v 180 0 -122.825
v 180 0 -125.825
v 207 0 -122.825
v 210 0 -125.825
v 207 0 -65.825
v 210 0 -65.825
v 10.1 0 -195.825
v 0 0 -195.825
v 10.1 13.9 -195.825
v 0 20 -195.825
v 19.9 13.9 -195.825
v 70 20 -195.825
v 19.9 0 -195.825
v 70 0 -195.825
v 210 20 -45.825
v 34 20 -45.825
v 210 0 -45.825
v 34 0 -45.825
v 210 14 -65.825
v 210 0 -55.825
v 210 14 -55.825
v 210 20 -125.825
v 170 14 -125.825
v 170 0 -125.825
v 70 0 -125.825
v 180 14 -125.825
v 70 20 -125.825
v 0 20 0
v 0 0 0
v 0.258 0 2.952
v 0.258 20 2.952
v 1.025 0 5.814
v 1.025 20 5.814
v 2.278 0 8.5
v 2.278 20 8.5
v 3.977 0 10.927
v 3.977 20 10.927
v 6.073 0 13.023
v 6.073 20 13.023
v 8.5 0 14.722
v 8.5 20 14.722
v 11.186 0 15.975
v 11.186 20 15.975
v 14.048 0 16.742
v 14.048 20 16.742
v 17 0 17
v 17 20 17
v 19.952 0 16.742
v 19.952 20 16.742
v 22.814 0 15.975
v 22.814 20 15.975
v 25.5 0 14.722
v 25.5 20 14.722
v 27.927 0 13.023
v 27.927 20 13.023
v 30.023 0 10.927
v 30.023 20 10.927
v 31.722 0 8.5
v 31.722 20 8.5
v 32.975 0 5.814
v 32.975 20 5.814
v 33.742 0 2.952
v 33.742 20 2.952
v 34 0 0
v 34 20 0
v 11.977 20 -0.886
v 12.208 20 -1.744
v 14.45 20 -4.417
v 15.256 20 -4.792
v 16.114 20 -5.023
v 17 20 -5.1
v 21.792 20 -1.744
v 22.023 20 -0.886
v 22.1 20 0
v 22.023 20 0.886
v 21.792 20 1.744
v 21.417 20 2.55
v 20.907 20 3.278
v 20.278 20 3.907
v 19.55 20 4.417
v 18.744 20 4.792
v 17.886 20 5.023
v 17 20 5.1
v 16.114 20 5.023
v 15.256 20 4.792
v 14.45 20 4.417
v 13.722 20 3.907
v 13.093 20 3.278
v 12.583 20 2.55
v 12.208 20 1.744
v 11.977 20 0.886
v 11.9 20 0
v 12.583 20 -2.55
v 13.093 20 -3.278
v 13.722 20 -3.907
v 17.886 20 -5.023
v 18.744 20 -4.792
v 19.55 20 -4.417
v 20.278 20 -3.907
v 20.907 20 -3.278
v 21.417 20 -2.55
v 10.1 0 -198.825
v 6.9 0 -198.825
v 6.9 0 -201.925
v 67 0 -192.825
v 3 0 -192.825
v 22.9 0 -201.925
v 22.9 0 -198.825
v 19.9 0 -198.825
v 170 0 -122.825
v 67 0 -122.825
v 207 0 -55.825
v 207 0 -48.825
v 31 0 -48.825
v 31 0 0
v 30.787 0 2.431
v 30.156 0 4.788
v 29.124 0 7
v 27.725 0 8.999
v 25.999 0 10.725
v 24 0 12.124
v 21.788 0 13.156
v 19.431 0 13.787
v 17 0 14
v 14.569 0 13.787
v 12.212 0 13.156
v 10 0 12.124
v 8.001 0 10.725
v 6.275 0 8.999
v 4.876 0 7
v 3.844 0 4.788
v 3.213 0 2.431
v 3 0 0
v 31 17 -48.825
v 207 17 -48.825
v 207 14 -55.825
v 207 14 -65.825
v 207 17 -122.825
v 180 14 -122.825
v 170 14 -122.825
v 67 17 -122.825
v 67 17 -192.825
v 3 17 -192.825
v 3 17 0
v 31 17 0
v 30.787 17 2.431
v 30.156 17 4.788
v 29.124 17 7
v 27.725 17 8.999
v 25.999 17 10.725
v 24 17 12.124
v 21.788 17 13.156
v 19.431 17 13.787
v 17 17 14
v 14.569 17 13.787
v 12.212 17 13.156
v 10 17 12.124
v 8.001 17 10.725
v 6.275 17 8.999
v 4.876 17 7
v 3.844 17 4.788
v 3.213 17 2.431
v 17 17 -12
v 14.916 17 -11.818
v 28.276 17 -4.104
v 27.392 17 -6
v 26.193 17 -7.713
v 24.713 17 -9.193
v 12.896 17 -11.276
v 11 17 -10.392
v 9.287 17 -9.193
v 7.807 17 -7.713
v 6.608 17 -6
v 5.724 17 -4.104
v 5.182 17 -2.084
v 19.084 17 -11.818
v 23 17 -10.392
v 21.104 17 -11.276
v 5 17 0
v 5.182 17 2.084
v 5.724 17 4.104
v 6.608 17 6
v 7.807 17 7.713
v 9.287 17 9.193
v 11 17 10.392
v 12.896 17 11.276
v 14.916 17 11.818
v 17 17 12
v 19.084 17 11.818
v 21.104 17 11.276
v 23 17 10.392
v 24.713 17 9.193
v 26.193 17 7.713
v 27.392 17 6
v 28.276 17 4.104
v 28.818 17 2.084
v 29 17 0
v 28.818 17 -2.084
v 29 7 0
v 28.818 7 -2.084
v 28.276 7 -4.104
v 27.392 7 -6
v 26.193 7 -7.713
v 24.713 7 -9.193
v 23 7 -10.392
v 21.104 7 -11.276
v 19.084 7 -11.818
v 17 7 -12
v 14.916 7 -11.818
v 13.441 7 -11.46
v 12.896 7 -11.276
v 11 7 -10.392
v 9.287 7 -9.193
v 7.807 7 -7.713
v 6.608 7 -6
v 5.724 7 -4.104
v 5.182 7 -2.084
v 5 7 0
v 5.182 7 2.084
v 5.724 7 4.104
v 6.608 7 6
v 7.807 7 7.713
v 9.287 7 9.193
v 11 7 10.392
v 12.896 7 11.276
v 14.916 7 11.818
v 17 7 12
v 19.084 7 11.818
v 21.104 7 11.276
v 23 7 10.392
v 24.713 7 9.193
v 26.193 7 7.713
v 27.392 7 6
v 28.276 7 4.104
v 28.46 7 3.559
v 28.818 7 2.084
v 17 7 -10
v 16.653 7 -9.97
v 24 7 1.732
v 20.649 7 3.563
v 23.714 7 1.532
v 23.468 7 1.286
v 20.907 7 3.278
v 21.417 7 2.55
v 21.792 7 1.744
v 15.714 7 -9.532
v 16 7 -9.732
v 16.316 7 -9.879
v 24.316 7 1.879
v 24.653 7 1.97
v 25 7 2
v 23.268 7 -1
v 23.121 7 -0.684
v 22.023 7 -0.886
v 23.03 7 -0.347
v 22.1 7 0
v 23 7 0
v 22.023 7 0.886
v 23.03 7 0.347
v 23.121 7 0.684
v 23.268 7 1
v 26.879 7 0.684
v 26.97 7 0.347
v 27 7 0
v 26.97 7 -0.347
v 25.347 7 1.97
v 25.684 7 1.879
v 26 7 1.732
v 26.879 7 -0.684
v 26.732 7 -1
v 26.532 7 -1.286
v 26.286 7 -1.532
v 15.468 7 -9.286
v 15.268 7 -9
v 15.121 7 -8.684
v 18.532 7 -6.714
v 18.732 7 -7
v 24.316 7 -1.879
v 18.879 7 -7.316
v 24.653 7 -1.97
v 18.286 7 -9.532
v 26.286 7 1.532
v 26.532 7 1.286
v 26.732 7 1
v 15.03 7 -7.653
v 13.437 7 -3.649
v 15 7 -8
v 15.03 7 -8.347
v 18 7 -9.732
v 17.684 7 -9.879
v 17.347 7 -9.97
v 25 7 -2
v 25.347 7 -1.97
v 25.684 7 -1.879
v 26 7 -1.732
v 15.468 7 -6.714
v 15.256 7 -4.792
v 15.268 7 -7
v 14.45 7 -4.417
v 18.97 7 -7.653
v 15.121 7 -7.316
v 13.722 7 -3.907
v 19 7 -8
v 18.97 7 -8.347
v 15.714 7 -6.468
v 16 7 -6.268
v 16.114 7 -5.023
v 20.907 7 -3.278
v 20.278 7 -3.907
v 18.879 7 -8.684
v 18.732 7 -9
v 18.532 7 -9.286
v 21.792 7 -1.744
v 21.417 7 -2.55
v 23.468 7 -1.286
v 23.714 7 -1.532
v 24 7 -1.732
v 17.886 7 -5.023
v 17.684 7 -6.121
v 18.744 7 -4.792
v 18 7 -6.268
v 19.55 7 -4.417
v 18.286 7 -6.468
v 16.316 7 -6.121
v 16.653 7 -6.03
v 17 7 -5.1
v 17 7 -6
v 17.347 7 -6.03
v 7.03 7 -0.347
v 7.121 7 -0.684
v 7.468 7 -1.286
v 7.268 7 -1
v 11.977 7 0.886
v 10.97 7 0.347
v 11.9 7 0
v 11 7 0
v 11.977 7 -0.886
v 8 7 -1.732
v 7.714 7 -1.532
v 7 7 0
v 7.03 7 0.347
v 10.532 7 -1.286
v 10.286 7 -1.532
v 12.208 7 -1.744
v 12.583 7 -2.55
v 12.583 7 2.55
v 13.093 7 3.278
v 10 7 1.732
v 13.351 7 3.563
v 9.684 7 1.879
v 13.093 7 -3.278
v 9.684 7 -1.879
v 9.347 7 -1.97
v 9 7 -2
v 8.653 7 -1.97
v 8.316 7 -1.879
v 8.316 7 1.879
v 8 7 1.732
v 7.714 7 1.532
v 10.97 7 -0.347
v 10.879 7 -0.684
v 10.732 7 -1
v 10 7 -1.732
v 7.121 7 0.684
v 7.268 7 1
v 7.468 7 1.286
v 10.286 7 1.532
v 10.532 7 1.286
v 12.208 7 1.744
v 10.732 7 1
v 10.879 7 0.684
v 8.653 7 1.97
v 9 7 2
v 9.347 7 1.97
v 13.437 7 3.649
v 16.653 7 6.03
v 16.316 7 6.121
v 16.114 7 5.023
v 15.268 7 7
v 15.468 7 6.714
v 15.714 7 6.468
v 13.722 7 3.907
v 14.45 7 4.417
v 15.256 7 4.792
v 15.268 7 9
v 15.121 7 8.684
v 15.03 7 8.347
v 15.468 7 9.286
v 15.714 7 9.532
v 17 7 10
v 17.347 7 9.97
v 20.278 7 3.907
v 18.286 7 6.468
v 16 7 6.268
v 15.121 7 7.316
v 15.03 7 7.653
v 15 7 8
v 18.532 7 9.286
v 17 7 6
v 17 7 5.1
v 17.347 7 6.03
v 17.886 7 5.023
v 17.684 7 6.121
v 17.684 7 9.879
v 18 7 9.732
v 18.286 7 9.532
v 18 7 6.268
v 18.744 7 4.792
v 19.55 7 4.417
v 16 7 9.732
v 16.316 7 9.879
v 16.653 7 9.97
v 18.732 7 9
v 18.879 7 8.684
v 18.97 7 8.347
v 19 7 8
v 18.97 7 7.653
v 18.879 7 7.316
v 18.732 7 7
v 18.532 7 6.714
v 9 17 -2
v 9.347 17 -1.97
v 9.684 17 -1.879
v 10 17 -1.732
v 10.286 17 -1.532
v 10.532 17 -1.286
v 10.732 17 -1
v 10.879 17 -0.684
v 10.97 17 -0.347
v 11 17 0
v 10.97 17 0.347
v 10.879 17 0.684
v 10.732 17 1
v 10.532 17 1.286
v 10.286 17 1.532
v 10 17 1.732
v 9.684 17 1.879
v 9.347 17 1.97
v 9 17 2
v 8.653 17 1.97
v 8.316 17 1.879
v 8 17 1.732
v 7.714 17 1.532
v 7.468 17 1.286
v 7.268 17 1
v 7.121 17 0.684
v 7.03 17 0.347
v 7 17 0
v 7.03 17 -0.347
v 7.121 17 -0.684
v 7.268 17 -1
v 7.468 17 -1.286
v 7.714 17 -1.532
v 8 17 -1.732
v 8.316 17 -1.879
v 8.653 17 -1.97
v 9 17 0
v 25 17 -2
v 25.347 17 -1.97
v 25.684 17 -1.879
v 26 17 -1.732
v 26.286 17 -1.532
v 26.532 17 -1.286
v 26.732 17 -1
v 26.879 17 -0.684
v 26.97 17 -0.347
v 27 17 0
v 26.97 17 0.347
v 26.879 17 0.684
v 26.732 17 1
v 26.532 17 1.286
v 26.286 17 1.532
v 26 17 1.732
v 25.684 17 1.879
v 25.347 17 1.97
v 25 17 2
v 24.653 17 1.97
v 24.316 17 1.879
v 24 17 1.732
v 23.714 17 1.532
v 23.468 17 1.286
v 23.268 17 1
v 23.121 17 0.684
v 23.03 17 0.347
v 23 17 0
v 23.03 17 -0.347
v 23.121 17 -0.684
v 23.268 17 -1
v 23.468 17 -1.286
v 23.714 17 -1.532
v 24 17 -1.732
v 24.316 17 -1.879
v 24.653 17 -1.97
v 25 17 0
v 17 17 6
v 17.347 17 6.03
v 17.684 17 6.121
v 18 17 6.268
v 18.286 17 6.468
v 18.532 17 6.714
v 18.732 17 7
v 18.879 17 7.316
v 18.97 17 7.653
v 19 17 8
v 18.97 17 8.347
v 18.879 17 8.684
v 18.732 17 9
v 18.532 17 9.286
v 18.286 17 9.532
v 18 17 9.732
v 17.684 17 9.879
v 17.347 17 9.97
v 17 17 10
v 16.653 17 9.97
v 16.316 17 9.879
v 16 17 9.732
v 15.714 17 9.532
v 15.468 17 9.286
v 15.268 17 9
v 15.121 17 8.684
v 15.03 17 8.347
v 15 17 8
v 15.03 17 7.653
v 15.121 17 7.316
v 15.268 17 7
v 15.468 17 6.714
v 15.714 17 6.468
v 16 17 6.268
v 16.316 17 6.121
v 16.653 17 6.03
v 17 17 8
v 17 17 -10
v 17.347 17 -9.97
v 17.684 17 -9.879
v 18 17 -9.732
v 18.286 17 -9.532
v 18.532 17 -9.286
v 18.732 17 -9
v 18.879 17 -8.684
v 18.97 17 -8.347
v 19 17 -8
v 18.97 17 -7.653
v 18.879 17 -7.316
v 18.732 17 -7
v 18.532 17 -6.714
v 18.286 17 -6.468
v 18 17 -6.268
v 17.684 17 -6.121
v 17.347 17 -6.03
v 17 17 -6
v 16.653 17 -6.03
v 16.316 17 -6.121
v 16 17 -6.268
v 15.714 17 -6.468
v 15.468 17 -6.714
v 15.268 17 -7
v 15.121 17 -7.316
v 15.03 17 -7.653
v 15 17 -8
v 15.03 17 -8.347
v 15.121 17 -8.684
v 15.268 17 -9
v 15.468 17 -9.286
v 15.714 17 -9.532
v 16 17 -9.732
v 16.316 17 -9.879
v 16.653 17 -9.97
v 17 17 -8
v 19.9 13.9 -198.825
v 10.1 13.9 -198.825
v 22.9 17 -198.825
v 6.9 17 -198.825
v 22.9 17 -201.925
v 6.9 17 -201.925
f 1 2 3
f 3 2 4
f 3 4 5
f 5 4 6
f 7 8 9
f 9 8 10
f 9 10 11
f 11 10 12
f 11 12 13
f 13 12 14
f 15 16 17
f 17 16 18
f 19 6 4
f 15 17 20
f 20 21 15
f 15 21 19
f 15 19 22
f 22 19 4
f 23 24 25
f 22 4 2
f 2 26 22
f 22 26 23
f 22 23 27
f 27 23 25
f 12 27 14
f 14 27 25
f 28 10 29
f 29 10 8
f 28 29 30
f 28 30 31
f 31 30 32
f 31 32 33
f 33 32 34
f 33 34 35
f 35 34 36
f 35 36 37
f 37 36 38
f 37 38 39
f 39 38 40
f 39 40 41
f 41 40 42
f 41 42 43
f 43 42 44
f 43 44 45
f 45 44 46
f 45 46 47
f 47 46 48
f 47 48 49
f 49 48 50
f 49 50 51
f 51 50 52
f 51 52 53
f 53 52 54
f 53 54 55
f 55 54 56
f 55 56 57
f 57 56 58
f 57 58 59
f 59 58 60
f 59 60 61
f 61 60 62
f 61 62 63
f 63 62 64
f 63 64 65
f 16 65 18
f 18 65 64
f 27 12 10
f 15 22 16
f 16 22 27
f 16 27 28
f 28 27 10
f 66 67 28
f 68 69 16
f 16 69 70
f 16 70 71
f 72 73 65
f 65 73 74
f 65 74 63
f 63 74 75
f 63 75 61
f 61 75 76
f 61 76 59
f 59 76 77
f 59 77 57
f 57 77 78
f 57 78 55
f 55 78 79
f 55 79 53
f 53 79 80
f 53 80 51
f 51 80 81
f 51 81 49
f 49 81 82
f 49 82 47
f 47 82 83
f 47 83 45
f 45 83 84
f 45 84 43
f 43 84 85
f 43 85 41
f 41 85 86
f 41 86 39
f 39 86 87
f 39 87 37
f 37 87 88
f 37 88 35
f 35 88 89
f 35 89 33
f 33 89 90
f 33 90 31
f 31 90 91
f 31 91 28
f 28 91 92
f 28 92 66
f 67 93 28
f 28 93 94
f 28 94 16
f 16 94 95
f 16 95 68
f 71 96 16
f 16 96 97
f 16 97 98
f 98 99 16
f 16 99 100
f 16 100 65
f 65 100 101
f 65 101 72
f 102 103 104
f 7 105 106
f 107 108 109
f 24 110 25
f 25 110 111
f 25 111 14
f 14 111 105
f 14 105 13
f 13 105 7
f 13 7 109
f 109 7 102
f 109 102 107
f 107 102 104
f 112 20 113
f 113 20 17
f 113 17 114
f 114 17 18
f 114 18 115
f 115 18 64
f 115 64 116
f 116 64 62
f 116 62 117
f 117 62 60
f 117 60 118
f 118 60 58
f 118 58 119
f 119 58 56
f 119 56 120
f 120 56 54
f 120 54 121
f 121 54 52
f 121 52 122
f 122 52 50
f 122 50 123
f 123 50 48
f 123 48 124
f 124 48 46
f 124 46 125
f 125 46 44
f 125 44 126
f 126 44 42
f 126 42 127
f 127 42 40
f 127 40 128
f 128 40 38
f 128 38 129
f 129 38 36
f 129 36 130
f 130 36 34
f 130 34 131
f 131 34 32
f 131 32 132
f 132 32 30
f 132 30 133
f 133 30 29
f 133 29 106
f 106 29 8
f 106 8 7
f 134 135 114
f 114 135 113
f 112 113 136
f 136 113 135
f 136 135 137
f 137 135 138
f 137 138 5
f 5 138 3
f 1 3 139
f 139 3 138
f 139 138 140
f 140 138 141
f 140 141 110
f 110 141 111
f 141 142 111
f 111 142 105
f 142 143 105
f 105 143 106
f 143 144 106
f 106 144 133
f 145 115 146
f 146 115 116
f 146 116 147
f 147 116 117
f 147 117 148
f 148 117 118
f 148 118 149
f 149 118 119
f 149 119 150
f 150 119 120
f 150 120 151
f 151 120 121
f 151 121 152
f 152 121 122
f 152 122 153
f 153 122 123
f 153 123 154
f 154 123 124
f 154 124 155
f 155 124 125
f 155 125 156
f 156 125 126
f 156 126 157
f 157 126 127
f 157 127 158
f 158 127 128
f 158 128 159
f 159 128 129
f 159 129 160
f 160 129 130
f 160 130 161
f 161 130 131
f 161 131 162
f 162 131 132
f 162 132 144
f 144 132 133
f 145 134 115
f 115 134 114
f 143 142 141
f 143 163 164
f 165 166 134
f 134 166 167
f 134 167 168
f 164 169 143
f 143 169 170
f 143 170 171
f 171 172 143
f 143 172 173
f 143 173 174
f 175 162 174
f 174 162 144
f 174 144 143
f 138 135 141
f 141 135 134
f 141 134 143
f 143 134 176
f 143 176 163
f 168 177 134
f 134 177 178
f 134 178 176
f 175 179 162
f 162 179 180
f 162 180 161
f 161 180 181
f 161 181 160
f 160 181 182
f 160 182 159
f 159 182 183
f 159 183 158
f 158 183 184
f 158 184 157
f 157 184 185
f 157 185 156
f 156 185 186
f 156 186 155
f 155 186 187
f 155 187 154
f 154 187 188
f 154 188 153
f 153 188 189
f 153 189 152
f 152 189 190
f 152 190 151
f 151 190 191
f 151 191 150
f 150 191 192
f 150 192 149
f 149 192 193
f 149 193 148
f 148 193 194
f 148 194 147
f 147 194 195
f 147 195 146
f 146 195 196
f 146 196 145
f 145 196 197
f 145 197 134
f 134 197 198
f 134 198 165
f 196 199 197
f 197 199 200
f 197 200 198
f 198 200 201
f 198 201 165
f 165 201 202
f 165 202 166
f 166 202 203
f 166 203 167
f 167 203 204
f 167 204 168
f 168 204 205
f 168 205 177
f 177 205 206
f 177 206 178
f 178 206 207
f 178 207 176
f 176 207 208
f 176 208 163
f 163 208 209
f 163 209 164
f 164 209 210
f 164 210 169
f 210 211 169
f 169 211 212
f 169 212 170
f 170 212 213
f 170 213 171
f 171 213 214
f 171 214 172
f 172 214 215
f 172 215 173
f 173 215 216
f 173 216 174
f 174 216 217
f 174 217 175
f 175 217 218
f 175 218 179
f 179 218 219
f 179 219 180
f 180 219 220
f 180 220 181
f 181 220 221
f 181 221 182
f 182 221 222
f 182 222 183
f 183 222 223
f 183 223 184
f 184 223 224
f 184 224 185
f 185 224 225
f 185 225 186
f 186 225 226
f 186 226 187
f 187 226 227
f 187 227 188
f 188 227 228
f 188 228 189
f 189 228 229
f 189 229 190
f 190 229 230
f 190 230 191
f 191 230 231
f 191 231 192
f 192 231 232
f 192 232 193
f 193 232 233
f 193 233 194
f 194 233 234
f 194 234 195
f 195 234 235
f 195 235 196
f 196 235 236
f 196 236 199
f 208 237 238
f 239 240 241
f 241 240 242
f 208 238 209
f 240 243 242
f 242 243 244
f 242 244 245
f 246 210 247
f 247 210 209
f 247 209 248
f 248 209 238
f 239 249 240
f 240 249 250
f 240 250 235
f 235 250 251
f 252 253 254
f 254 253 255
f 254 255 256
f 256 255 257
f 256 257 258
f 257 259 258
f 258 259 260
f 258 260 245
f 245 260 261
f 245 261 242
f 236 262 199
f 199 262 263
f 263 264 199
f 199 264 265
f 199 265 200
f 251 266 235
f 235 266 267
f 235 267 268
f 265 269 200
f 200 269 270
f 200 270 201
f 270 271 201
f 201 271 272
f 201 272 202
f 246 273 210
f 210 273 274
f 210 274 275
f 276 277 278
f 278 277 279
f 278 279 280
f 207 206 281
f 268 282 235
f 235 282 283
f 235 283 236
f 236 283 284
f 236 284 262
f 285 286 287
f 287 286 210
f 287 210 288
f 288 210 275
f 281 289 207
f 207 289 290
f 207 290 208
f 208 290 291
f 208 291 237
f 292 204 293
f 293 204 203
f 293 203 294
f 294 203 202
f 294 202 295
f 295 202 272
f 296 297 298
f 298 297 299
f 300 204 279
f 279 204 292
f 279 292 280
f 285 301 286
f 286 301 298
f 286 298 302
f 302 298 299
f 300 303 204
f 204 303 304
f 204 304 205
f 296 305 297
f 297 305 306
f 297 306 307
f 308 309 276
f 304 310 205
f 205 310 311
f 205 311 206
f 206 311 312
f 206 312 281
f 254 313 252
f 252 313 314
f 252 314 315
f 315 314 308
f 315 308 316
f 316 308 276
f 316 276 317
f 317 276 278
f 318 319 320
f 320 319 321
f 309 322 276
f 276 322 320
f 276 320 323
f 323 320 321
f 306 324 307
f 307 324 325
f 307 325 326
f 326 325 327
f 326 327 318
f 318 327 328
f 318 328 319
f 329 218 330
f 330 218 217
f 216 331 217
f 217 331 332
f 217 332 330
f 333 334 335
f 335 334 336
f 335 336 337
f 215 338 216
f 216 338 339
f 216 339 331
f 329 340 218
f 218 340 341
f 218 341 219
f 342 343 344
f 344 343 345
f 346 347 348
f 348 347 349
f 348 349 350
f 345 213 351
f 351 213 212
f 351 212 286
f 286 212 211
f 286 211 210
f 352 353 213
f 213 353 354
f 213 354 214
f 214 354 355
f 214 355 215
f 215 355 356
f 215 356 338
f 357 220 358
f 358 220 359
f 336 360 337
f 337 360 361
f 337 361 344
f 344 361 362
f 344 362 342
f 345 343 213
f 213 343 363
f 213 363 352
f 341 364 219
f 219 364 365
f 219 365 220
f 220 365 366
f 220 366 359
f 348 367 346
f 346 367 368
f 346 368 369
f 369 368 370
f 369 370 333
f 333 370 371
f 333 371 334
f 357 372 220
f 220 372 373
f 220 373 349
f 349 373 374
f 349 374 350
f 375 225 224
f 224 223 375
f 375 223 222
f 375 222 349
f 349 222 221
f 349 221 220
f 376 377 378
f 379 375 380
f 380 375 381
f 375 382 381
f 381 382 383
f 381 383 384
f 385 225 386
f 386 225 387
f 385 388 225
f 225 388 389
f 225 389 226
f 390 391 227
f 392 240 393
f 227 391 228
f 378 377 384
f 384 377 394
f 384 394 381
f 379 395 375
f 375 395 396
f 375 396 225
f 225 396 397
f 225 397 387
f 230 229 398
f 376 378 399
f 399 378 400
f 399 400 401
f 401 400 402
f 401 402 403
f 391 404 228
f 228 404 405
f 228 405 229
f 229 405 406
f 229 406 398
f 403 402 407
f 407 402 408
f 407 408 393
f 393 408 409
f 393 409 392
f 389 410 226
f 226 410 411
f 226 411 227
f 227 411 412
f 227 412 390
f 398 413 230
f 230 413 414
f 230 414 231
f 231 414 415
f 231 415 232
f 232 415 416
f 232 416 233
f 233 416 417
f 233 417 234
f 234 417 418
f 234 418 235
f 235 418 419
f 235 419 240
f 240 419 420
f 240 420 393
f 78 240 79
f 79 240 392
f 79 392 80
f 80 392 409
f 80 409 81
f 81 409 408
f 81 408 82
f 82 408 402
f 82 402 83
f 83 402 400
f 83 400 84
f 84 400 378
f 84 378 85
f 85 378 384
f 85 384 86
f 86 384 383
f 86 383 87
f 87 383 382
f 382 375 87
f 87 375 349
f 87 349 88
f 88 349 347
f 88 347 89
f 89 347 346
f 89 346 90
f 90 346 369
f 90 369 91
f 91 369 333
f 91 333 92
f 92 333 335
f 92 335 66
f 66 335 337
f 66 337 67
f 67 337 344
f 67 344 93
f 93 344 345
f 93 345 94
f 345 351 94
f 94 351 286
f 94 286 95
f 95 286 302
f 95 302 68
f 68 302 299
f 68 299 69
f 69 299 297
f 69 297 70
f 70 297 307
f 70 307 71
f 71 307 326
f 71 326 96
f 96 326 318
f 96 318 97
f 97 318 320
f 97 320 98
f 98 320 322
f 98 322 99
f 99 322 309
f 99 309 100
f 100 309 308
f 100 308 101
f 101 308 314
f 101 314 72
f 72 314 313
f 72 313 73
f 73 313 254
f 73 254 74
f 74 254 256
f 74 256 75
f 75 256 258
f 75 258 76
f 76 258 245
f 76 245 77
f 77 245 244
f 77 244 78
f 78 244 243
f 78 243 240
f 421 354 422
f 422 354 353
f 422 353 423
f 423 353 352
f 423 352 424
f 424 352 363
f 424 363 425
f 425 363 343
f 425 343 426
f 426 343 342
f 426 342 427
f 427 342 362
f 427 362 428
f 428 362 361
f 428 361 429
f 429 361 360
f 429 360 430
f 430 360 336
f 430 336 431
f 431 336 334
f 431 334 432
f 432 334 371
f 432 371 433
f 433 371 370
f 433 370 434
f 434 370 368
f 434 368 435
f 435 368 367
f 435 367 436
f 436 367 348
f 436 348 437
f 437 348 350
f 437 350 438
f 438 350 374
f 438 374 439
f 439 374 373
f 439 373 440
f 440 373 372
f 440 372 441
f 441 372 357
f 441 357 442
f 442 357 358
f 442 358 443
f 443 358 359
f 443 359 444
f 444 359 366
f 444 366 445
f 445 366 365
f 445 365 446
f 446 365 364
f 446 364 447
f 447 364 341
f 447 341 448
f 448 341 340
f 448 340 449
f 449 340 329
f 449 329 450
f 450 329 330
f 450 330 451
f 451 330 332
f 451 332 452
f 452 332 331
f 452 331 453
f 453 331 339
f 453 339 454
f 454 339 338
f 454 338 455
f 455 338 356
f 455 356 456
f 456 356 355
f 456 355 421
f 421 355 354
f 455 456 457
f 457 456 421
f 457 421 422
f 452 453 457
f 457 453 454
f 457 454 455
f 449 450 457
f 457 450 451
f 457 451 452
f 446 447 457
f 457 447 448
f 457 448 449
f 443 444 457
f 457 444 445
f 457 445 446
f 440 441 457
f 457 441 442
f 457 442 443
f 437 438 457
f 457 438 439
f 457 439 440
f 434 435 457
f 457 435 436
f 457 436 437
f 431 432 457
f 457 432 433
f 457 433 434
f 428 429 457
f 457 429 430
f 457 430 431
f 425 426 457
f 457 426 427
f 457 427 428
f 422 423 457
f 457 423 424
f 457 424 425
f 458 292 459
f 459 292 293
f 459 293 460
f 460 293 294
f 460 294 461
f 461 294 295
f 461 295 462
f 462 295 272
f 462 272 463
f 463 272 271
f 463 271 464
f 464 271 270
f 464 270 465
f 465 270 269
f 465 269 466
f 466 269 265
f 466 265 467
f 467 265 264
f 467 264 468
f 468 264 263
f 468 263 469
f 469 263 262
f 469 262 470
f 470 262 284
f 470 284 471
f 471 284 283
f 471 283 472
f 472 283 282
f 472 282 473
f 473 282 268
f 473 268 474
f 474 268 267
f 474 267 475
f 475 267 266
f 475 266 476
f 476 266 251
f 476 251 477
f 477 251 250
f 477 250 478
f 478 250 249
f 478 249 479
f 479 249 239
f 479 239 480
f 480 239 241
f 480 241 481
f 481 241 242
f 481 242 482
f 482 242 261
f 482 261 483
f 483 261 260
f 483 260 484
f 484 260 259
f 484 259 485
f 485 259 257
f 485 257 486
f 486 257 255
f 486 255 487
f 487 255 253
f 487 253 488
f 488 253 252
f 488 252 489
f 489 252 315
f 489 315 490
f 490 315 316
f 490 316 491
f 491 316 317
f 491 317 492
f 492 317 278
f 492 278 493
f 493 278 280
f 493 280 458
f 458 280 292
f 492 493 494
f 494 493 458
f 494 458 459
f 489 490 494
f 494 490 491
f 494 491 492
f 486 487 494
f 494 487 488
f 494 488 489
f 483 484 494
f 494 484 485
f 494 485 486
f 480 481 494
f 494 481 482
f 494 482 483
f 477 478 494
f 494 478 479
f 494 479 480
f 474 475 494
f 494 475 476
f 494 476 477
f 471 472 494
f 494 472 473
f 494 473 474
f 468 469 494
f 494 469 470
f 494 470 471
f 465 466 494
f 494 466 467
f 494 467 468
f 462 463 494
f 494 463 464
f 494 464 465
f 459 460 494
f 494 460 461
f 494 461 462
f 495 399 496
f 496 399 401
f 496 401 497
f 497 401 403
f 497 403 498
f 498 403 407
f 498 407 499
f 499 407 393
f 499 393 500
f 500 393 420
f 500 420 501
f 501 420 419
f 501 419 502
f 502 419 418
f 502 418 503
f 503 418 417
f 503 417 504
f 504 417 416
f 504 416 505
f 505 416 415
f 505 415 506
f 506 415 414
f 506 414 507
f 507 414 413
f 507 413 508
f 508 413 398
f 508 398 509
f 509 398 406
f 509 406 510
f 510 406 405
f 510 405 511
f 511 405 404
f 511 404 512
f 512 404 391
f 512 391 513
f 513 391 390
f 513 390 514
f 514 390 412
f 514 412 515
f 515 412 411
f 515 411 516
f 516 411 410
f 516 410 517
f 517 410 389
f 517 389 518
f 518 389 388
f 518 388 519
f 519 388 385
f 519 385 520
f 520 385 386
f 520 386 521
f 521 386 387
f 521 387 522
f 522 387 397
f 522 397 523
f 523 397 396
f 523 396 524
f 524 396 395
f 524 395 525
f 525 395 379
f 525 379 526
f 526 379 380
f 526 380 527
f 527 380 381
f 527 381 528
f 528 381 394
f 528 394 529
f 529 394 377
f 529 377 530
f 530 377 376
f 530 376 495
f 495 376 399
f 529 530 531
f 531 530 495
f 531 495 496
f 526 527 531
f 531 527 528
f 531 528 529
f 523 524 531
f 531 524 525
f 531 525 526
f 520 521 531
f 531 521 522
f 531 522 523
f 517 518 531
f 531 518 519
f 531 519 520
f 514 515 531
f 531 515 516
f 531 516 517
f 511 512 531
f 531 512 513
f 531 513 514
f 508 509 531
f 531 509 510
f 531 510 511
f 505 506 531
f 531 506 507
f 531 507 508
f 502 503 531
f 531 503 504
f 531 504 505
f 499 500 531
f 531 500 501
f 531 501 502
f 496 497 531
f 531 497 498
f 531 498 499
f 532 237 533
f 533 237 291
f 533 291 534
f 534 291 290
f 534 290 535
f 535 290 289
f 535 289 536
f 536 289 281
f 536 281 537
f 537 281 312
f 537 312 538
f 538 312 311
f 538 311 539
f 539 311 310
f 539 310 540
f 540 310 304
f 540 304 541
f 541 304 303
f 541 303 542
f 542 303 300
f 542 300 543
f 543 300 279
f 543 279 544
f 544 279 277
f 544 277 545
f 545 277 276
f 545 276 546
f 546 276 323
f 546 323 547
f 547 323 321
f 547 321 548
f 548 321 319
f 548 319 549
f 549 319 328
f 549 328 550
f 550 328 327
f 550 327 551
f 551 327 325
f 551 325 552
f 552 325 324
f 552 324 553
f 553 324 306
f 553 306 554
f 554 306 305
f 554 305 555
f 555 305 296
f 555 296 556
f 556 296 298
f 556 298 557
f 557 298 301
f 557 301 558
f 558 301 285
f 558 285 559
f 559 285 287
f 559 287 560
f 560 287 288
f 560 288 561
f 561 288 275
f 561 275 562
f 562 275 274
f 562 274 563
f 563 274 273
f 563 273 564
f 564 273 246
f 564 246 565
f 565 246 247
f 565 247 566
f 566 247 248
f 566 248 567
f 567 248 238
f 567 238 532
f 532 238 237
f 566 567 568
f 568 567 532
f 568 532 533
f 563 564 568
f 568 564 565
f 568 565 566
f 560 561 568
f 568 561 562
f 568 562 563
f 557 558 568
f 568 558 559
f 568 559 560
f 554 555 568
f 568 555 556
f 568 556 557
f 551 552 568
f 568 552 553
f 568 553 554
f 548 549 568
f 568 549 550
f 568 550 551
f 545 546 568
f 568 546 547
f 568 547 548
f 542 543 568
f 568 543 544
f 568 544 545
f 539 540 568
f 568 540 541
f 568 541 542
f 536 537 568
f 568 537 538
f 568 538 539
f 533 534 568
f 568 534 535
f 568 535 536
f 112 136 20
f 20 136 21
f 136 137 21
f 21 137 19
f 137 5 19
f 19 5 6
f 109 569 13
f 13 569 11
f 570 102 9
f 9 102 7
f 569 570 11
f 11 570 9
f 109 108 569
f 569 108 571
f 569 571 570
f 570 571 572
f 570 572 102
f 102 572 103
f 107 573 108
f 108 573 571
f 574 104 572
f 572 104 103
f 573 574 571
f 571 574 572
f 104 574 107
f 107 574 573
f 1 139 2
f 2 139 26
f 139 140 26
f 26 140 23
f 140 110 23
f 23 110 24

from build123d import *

# Parameters (mm, degrees)
CORNERBOSS_EXTRUDE1_DEPTH               = 20
SHELL4_T                                = -3
PADSKETCH2_R                            = 12
PADBOSS_EXTRUDE2_DEPTH                  = 10
STEPPERSHAFTHOLECUTSKETCH3_R            = 5.1
STEPPERSHAFTHOLECUT_EXTRUDE1_DEPTH      = 288.430740571
THREADEDNUTMOUNTHOLESSKETCH4_R          = 2
THREADEDNUTMOUNTHOLESCUT_EXTRUDE2_DEPTH = 10
BRPEGHOLESKETCH1_W                      = 10
BRPEGHOLESKETCH1_H                      = 14
BRPEGHOLECUT_EXTRUDE1_DEPTH             = 3
TOPPEGSKETCH2_W                         = 9.8
TOPPEGSKETCH2_H                         = 13.9
TOPPEGBOSS_EXTRUDE1_DEPTH               = 3
TOPPEGCAPSKETCH3_W                      = 16
TOPPEGCAPSKETCH3_H                      = 17
TOPPEGCAPBOSS_EXTRUDE2_DEPTH            = 3.1
CENTERPEGHOLECUTSKETCH1_W               = 10
CENTERPEGHOLECUTSKETCH1_H               = 14
CENTERPEGHOLECUT_EXTRUDE1_DEPTH         = 3


with BuildPart() as part:
    # CornerrSketch1 → CornerBoss-Extrude1 (new body)
    with BuildSketch(Plane(origin=(0, 0, 0), x_dir=(1, 0, 0), z_dir=(0, 1, 0))):
        with BuildLine():
            Line((0, 195.825), (70, 195.825))
            Line((70, 195.825), (70, 125.825))
            Line((70, 125.825), (210, 125.825))
            Line((210, 125.825), (210, 45.825))
            Line((210, 45.825), (34, 45.825))
            Line((34, 45.825), (34, 0))
            ThreePointArc((34, 0), (17, -17), (0, 0))
            Line((0, 0), (0, 195.825))
        make_face()
    extrude(amount=CORNERBOSS_EXTRUDE1_DEPTH)

    # Shell4
    shell4_openings = [part.faces().sort_by_distance(p)[0] for p in [
        (83.067785517, 0, -95.408443826),
    ]]
    offset(amount=SHELL4_T, openings=shell4_openings, kind=Kind.INTERSECTION)

    # PadSketch2 → PadBoss-Extrude2 (add)
    with BuildSketch(Plane.XZ.offset(-17)):
        with Locations(Location((17, 0, 0), (0, 0, 90))):
            Circle(PADSKETCH2_R)
    extrude(amount=PADBOSS_EXTRUDE2_DEPTH)

    # StepperShaftHoleCutSketch3 → StepperShaftHoleCut-Extrude1 (cut, through all)
    with BuildSketch(Plane.XZ.offset(-7)):
        with Locations(Location((17, 0, 0), (0, 0, 270))):
            Circle(STEPPERSHAFTHOLECUTSKETCH3_R)
    extrude(amount=-STEPPERSHAFTHOLECUT_EXTRUDE1_DEPTH, mode=Mode.SUBTRACT)

    # ThreadedNutMountHolesSketch4 → ThreadedNutMountHolesCut-Extrude2 (cut)
    with BuildSketch(Plane(origin=(0, 7, 0), x_dir=(-1, 0, 0), z_dir=(0, -1, 0))):
        with Locations(Location((-17, 8, 0), (0, 0, 90))):
            Circle(THREADEDNUTMOUNTHOLESSKETCH4_R)
        with Locations(Location((-17, -8, 0), (0, 0, 90))):
            Circle(THREADEDNUTMOUNTHOLESSKETCH4_R)
        with Locations(Location((-25, 0, 0), (0, 0, 90))):
            Circle(THREADEDNUTMOUNTHOLESSKETCH4_R)
        with Locations(Location((-9, 0, 0), (0, 0, 90))):
            Circle(THREADEDNUTMOUNTHOLESSKETCH4_R)
    extrude(amount=-THREADEDNUTMOUNTHOLESCUT_EXTRUDE2_DEPTH, mode=Mode.SUBTRACT)

    # BRPegHoleSketch1 → BRPegHoleCut-Extrude1 (cut)
    with BuildSketch(Plane(origin=(210, 0, 0), x_dir=(0, 0, -1), z_dir=(1, 0, 0))):
        with Locations((60.825, 7)):
            Rectangle(BRPEGHOLESKETCH1_W, BRPEGHOLESKETCH1_H)
    extrude(amount=-BRPEGHOLECUT_EXTRUDE1_DEPTH, mode=Mode.SUBTRACT)

    # TopPegSketch2 → TopPegBoss-Extrude1 (add)
    with BuildSketch(Plane(origin=(0, 0, -195.825), x_dir=(-1, 0, 0), z_dir=(0, 0, -1))):
        with Locations((-15, 6.95)):
            Rectangle(TOPPEGSKETCH2_W, TOPPEGSKETCH2_H)
    extrude(amount=TOPPEGBOSS_EXTRUDE1_DEPTH)

    # TopPegCapSketch3 → TopPegCapBoss-Extrude2 (add)
    with BuildSketch(Plane(origin=(0, 0, -198.825), x_dir=(-1, 0, 0), z_dir=(0, 0, -1))):
        with Locations((-14.9, 8.5)):
            Rectangle(TOPPEGCAPSKETCH3_W, TOPPEGCAPSKETCH3_H)
    extrude(amount=TOPPEGCAPBOSS_EXTRUDE2_DEPTH)

    # CenterPegHoleCutSketch1 → CenterPegHoleCut-Extrude1 (cut)
    with BuildSketch(Plane(origin=(0, 0, -125.825), x_dir=(-1, 0, 0), z_dir=(0, 0, -1))):
        with Locations((-175, 7)):
            Rectangle(CENTERPEGHOLECUTSKETCH1_W, CENTERPEGHOLECUTSKETCH1_H)
    extrude(amount=-CENTERPEGHOLECUT_EXTRUDE1_DEPTH, mode=Mode.SUBTRACT)


solid = part.part
